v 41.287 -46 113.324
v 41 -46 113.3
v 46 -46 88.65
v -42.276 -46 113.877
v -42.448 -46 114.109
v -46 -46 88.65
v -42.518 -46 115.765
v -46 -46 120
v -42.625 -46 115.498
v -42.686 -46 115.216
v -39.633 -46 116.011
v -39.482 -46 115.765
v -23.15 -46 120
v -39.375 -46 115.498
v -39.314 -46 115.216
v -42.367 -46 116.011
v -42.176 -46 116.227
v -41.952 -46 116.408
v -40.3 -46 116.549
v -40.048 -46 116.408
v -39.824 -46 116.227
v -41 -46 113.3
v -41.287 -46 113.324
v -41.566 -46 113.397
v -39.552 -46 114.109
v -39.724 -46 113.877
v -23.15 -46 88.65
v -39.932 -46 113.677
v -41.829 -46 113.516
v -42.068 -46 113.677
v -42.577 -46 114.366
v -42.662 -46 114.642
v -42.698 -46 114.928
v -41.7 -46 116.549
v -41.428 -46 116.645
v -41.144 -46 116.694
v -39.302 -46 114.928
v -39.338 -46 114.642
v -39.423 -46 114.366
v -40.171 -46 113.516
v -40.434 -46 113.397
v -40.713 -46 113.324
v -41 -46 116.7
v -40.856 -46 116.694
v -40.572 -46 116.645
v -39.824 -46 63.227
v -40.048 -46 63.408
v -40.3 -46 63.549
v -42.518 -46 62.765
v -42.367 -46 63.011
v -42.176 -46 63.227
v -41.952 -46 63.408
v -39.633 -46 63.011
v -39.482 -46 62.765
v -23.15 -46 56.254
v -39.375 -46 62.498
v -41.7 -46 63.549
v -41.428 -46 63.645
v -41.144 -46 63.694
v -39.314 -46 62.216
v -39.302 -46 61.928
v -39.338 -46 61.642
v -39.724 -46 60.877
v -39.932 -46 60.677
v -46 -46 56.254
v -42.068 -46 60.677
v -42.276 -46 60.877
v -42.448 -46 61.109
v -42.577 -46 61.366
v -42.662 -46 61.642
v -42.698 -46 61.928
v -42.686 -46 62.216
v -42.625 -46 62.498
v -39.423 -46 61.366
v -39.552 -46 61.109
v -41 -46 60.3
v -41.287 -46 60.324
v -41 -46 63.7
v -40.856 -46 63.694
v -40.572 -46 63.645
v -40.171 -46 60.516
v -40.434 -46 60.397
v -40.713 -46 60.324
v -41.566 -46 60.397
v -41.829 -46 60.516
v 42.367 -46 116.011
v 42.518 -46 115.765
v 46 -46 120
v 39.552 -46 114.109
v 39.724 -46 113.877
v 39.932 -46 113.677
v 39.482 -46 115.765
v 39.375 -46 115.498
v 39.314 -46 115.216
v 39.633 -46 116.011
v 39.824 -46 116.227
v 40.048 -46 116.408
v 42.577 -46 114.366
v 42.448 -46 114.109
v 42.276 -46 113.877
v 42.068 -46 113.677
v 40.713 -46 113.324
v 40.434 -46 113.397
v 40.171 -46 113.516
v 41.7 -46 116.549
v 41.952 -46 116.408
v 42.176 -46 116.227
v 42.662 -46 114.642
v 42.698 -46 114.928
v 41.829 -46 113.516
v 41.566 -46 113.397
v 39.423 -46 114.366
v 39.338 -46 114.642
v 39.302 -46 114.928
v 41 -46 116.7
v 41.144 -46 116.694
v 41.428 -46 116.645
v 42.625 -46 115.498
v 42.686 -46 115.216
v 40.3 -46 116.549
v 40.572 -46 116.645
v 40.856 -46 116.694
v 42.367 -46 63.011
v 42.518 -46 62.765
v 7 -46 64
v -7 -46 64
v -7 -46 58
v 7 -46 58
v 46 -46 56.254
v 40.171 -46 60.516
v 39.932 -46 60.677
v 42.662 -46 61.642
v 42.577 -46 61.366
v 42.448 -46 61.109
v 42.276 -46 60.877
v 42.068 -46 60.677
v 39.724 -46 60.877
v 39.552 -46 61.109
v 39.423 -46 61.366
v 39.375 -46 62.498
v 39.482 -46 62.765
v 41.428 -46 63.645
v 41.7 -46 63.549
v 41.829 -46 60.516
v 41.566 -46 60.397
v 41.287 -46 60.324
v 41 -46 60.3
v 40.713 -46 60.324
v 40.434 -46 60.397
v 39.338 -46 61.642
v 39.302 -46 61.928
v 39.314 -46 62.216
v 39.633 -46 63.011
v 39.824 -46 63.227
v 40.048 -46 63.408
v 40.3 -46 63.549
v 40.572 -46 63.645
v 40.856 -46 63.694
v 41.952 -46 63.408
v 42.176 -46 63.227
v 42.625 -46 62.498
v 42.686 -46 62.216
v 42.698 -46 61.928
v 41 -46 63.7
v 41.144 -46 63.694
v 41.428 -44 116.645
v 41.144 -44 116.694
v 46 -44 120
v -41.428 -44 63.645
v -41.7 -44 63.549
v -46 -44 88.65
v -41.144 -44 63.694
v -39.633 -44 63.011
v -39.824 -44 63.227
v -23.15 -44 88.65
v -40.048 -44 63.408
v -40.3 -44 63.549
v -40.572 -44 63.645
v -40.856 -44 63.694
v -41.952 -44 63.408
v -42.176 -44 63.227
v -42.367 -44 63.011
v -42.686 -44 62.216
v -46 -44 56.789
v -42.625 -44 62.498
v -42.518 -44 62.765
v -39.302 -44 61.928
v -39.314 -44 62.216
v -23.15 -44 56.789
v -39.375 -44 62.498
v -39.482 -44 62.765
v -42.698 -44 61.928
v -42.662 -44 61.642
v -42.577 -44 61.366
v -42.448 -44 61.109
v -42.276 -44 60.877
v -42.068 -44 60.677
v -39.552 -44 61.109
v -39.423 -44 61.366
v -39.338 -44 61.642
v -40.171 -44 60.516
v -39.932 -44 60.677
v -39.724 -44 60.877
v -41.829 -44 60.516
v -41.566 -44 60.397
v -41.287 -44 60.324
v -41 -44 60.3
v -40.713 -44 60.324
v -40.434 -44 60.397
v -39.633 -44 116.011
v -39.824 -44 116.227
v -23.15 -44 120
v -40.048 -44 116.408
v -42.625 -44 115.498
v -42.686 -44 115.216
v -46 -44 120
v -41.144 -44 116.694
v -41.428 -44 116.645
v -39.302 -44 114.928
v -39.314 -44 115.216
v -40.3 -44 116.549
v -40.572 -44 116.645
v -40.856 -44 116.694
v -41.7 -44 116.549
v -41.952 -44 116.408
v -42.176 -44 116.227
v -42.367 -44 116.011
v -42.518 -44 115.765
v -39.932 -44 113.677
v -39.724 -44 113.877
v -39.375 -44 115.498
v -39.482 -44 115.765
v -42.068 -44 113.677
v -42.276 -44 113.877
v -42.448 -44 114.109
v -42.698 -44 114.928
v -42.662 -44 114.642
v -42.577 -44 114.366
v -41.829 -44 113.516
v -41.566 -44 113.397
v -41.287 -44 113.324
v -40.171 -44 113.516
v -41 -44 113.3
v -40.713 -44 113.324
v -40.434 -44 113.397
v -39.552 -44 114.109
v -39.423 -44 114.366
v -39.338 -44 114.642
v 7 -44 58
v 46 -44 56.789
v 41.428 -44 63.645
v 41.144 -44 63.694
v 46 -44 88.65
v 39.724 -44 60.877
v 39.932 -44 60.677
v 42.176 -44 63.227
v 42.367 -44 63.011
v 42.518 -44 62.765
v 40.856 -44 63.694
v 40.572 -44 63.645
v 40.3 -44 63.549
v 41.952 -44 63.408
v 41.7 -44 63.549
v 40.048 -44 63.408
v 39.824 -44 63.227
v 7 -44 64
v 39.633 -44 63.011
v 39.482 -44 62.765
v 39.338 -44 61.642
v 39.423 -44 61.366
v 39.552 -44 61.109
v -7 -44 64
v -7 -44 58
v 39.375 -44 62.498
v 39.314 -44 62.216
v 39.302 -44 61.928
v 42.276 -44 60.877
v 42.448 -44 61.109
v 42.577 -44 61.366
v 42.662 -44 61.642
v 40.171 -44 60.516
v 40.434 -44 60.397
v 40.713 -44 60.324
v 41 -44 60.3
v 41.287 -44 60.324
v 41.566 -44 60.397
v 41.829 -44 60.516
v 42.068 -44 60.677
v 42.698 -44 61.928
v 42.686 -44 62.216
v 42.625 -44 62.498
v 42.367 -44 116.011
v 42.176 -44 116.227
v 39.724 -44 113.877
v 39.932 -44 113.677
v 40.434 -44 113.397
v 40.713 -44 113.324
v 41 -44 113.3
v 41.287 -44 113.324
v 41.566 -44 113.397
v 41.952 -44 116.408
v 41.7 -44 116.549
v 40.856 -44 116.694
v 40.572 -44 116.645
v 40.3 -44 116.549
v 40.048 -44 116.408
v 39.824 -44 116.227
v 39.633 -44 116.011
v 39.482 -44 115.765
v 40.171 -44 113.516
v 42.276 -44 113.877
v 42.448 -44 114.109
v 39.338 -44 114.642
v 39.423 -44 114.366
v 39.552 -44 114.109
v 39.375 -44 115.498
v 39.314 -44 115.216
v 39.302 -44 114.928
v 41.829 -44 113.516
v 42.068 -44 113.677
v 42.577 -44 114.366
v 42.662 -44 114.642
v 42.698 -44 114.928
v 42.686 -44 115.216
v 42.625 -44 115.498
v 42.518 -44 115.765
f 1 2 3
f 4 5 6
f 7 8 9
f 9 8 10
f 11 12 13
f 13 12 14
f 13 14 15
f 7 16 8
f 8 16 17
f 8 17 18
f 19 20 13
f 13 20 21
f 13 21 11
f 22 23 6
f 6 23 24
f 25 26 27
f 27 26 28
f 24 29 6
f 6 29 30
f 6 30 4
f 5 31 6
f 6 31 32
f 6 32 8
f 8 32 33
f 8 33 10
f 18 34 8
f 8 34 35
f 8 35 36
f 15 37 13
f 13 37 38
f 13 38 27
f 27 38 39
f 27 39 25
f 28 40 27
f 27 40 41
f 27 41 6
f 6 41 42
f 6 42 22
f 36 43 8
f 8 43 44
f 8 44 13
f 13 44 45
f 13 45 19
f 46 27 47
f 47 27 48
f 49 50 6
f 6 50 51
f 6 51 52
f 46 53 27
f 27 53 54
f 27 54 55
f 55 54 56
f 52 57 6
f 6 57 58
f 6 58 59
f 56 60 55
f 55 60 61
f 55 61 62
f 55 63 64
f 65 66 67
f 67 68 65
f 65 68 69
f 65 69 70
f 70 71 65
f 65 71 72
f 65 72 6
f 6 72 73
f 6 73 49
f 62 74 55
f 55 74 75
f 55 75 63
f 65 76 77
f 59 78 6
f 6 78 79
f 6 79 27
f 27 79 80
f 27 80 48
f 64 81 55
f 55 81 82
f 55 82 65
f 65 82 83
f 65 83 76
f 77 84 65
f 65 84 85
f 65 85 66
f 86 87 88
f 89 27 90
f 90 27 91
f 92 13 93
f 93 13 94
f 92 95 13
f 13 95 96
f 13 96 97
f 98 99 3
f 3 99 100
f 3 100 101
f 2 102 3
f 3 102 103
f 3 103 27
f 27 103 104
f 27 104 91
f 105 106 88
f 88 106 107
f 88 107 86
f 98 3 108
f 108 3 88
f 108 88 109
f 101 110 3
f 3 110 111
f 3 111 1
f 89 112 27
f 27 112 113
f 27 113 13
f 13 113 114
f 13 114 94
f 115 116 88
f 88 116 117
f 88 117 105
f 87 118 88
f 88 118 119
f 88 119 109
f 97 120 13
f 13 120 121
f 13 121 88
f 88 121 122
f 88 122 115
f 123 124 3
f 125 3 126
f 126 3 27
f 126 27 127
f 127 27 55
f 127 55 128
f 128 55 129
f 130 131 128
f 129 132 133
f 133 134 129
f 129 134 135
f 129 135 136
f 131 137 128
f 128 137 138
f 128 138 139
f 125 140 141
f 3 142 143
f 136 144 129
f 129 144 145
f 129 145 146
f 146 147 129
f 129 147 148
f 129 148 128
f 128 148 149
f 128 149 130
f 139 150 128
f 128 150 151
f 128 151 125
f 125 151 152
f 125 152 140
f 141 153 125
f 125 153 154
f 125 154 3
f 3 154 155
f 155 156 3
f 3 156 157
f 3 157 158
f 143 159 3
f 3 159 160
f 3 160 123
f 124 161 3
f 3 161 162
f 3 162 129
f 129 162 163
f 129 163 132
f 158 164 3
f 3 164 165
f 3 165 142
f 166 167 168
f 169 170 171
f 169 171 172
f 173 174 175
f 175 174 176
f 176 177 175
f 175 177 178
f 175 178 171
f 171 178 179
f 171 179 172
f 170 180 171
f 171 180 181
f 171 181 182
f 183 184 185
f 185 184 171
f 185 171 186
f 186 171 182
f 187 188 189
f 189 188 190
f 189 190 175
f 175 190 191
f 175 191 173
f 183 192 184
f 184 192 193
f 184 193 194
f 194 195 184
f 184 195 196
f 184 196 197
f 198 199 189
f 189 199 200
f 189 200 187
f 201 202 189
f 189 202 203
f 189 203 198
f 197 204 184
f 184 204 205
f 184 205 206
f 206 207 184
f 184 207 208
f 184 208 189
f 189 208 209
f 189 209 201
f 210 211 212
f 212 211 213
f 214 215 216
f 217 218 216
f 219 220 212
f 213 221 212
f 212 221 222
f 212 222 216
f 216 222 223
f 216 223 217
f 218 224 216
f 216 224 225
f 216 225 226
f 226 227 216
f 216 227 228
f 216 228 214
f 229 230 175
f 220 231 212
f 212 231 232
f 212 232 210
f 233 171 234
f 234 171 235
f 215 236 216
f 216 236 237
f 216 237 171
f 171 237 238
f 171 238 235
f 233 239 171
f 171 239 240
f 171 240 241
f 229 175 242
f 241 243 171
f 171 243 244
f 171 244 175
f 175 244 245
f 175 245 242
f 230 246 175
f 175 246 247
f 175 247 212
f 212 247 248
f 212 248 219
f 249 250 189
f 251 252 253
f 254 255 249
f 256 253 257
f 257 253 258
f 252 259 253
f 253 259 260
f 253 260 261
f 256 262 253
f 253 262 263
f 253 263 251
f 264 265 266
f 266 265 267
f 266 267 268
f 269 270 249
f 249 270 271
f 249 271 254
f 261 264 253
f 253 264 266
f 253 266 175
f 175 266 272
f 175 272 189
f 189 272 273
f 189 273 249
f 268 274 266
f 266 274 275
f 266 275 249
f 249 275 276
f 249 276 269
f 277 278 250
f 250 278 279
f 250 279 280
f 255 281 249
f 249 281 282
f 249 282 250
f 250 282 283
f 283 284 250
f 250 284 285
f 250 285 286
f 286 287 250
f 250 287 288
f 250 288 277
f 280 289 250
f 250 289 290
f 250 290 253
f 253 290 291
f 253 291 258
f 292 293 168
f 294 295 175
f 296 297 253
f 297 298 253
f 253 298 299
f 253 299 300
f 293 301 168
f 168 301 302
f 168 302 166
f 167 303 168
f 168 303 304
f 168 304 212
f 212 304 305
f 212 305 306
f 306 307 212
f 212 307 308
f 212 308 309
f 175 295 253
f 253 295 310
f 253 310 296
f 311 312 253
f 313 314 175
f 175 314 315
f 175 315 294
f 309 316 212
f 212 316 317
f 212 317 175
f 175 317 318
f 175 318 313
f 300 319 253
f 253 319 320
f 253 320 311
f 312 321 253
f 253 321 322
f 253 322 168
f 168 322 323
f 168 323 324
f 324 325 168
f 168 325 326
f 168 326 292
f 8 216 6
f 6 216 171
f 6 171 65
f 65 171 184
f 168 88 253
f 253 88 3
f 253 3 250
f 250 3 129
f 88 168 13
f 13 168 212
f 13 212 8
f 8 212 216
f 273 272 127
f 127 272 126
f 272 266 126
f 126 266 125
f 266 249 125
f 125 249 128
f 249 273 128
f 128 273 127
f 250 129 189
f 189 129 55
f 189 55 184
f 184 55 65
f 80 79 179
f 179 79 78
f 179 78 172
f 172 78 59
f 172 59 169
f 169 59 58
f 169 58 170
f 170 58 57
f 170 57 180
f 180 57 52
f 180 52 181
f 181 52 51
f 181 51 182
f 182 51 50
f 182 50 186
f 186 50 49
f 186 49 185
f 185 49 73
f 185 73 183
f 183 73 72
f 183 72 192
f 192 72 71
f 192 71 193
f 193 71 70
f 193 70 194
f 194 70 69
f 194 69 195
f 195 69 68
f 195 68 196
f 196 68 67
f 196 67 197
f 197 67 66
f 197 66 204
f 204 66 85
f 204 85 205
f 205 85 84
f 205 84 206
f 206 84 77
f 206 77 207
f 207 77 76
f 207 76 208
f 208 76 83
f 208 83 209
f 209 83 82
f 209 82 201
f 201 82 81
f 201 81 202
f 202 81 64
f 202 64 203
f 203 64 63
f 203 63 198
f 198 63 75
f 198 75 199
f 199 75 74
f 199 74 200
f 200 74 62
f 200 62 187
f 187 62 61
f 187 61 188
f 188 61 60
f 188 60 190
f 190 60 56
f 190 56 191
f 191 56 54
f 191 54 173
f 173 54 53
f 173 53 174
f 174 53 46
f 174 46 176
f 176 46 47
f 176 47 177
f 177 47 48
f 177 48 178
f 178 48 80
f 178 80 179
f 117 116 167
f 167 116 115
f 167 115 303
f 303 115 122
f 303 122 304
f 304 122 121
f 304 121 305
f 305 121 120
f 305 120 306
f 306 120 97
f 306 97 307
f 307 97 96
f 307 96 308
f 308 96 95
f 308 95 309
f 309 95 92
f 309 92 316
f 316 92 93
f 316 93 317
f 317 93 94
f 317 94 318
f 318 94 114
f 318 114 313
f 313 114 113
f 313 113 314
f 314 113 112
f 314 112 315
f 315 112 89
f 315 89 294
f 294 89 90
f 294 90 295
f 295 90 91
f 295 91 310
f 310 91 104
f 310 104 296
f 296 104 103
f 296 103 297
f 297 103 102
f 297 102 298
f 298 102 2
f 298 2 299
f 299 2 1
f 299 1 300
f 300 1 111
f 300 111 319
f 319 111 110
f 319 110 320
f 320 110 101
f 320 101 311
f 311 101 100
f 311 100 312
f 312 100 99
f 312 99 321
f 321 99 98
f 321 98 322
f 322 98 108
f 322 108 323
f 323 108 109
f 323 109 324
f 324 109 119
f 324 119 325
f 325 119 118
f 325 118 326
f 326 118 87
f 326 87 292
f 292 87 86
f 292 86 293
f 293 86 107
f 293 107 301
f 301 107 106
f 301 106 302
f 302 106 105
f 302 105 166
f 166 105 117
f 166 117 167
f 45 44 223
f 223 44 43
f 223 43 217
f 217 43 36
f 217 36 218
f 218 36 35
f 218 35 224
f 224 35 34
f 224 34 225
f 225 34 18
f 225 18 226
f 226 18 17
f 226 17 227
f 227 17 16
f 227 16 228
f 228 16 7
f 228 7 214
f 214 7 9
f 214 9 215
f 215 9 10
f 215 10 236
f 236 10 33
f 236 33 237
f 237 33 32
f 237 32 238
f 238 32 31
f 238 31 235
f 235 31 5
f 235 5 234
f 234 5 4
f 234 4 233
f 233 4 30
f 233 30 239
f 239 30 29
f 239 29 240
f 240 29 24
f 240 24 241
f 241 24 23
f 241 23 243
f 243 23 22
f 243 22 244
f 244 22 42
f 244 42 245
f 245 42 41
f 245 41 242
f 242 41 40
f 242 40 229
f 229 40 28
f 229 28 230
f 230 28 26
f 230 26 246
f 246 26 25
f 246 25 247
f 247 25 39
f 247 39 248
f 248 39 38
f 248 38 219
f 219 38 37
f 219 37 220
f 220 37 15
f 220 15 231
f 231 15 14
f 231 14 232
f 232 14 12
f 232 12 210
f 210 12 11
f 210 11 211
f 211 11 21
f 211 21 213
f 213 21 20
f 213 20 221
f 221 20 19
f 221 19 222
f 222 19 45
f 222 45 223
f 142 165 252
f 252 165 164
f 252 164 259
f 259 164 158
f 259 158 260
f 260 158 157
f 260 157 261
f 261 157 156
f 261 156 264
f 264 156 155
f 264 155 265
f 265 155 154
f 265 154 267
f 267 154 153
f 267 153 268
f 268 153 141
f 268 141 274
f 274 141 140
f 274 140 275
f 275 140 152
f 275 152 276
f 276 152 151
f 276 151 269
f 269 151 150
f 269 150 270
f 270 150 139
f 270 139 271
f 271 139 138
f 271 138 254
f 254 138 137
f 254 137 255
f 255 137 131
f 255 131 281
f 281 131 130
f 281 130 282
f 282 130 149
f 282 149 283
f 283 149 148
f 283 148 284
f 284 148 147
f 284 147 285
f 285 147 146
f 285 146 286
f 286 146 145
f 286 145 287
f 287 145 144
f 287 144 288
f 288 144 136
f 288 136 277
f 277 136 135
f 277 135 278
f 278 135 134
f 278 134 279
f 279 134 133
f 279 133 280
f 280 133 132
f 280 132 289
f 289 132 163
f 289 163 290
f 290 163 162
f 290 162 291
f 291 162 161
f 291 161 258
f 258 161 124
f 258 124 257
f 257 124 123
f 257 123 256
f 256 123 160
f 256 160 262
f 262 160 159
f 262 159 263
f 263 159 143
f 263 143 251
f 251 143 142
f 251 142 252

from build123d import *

# Parameters (mm, degrees)
SKETCH_1_W                               = 92
SKETCH_1_H                               = 2
REAR_COVER_2MM_1_DEPTH                   = 65
SKETCH_3_W                               = 14
SKETCH_3_H                               = 6
DISPLAY_WIRE_EXIT_14X6_3_DEPTH           = 4
REAR_COVER_CAGE_ROOF_CLEARANCE_207_DEPTH = 94
SKETCH_5_R                               = 1.7
REAR_COVER_M3_CLEARANCE_FINAL_208_DEPTH  = 4


with BuildPart() as part:
    # Эскиз1 → Rear_cover_2mm_1 (new body)
    with BuildSketch(Plane.XY.offset(55)):
        with Locations((0, -45)):
            Rectangle(SKETCH_1_W, SKETCH_1_H)
    extrude(amount=REAR_COVER_2MM_1_DEPTH)

    # Эскиз3 → Display_wire_exit_14x6_3 (cut)
    with BuildSketch(Plane(origin=(0, -47, 0), x_dir=(1, 0, 0), z_dir=(0, 1, 0))):
        with Locations((0, -61)):
            Rectangle(SKETCH_3_W, SKETCH_3_H)
    extrude(amount=DISPLAY_WIRE_EXIT_14X6_3_DEPTH, mode=Mode.SUBTRACT)

    # Эскиз4 → Rear_cover_cage_roof_clearance_207 (cut)
    with BuildSketch(Plane(origin=(-47, 0, 0), x_dir=(0, 0, -1), z_dir=(1, 0, 0))):
        Polygon((-10, -47), (-10, -40), (-57.861284772, -40), (-55.985640425, -47), align=None)
    extrude(amount=REAR_COVER_CAGE_ROOF_CLEARANCE_207_DEPTH, mode=Mode.SUBTRACT)

    # Эскиз5 → Rear_cover_M3_clearance_final_208 (cut)
    with BuildSketch(Plane(origin=(0, -47, 0), x_dir=(1, 0, 0), z_dir=(0, 1, 0))):
        with Locations(Location((-41, -62, 0), (0, 0, 90))):
            Circle(SKETCH_5_R)
        with Locations(Location((41, -62, 0), (0, 0, 90))):
            Circle(SKETCH_5_R)
        with Locations(Location((-41, -115, 0), (0, 0, 90))):
            Circle(SKETCH_5_R)
        with Locations(Location((41, -115, 0), (0, 0, 90))):
            Circle(SKETCH_5_R)
    extrude(amount=REAR_COVER_M3_CLEARANCE_FINAL_208_DEPTH, mode=Mode.SUBTRACT)


solid = part.part
